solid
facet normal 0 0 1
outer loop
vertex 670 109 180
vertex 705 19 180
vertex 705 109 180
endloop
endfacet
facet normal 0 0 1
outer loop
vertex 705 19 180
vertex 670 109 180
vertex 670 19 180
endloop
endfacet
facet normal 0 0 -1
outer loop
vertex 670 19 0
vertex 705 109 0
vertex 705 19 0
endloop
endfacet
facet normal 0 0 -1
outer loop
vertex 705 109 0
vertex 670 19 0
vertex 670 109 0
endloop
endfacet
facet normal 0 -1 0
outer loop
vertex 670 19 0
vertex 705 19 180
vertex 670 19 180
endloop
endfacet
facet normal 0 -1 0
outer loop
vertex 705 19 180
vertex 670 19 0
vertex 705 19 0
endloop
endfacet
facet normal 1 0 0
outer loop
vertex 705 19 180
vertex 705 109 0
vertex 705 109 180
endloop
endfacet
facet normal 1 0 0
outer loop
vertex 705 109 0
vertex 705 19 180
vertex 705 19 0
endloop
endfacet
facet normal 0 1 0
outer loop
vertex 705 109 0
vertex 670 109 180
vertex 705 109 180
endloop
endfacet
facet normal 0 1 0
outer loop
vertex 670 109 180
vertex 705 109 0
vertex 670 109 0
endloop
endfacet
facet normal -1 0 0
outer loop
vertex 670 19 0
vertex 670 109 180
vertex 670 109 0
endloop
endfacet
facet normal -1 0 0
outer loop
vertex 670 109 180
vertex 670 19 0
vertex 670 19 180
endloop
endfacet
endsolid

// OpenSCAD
vyska  = 196+64;
tenka  = 10;
tlusta = 45;


vychod = 19 + 90 + 1 + 90 + 149 + 184;
//zapad  = 143 + 273;
zapad = vychod - 76;
jih    = 62 + 120 + 145 + 120 + 70 + 144 + 45;
sever1 = 147+59 +  28+69+82+111;
sever2 = 210;
sever_posun = 76;
sever = sever1+sever2;

severni_pricka_pozice   = 147+59;
severni_pricka_delka    = 108;
severni_pricka_tloustka = 28;

dvere_pozice = 147 + 59 + 28 + 69;
dvere_sirka = 82;
dvere_vyska = 196;

okno_vyska = 155;
okno_vertikalni_pozice = 48;
vetsi_okno_sirka = 144;
mensi_okno_sirka = 120;

vetsi_okno_pozice = 45;
mensi_okno_pozice1 = 45+144+70;
mensi_okno_pozice2 = 45+144+70+120+145;

balkonove_dvere_sirka = 130;
balkonove_dvere_vyska = 235;
balkonove_dvere_pozice = 45+144+70+120+7;

police_vyska = 180;
police_sirka = 90;
police_tloustka = 35;
police_pozice = 19;

akvarium_delka = 88;
akvarium_tloustka = 70.5;
akvarium_vyska = 60;

pracovni_deska_sirka = 132;
pracovni_deska_hloubka = 94;

gauc_vyska = 43;
gauc_A_delka = 150;
gauc_A_sirka = 88;
gauc_B_delka = 150;
gauc_B_sirka = 80;

stul_delka = 180;
stul_sirka = 90;
stul_vyska = 75;

module gauc() {
    color("gray")
    translate([gauc_B_delka-gauc_A_sirka, gauc_B_sirka, 0])
    cube([gauc_A_sirka, gauc_A_delka, gauc_vyska]);
    
    
    color("gray")
    cube([gauc_B_delka, gauc_B_sirka, gauc_vyska]);
}

//police1
color("gray")
translate([jih-police_tloustka-1, police_pozice, 0])
cube([police_tloustka, police_sirka, police_vyska]);
